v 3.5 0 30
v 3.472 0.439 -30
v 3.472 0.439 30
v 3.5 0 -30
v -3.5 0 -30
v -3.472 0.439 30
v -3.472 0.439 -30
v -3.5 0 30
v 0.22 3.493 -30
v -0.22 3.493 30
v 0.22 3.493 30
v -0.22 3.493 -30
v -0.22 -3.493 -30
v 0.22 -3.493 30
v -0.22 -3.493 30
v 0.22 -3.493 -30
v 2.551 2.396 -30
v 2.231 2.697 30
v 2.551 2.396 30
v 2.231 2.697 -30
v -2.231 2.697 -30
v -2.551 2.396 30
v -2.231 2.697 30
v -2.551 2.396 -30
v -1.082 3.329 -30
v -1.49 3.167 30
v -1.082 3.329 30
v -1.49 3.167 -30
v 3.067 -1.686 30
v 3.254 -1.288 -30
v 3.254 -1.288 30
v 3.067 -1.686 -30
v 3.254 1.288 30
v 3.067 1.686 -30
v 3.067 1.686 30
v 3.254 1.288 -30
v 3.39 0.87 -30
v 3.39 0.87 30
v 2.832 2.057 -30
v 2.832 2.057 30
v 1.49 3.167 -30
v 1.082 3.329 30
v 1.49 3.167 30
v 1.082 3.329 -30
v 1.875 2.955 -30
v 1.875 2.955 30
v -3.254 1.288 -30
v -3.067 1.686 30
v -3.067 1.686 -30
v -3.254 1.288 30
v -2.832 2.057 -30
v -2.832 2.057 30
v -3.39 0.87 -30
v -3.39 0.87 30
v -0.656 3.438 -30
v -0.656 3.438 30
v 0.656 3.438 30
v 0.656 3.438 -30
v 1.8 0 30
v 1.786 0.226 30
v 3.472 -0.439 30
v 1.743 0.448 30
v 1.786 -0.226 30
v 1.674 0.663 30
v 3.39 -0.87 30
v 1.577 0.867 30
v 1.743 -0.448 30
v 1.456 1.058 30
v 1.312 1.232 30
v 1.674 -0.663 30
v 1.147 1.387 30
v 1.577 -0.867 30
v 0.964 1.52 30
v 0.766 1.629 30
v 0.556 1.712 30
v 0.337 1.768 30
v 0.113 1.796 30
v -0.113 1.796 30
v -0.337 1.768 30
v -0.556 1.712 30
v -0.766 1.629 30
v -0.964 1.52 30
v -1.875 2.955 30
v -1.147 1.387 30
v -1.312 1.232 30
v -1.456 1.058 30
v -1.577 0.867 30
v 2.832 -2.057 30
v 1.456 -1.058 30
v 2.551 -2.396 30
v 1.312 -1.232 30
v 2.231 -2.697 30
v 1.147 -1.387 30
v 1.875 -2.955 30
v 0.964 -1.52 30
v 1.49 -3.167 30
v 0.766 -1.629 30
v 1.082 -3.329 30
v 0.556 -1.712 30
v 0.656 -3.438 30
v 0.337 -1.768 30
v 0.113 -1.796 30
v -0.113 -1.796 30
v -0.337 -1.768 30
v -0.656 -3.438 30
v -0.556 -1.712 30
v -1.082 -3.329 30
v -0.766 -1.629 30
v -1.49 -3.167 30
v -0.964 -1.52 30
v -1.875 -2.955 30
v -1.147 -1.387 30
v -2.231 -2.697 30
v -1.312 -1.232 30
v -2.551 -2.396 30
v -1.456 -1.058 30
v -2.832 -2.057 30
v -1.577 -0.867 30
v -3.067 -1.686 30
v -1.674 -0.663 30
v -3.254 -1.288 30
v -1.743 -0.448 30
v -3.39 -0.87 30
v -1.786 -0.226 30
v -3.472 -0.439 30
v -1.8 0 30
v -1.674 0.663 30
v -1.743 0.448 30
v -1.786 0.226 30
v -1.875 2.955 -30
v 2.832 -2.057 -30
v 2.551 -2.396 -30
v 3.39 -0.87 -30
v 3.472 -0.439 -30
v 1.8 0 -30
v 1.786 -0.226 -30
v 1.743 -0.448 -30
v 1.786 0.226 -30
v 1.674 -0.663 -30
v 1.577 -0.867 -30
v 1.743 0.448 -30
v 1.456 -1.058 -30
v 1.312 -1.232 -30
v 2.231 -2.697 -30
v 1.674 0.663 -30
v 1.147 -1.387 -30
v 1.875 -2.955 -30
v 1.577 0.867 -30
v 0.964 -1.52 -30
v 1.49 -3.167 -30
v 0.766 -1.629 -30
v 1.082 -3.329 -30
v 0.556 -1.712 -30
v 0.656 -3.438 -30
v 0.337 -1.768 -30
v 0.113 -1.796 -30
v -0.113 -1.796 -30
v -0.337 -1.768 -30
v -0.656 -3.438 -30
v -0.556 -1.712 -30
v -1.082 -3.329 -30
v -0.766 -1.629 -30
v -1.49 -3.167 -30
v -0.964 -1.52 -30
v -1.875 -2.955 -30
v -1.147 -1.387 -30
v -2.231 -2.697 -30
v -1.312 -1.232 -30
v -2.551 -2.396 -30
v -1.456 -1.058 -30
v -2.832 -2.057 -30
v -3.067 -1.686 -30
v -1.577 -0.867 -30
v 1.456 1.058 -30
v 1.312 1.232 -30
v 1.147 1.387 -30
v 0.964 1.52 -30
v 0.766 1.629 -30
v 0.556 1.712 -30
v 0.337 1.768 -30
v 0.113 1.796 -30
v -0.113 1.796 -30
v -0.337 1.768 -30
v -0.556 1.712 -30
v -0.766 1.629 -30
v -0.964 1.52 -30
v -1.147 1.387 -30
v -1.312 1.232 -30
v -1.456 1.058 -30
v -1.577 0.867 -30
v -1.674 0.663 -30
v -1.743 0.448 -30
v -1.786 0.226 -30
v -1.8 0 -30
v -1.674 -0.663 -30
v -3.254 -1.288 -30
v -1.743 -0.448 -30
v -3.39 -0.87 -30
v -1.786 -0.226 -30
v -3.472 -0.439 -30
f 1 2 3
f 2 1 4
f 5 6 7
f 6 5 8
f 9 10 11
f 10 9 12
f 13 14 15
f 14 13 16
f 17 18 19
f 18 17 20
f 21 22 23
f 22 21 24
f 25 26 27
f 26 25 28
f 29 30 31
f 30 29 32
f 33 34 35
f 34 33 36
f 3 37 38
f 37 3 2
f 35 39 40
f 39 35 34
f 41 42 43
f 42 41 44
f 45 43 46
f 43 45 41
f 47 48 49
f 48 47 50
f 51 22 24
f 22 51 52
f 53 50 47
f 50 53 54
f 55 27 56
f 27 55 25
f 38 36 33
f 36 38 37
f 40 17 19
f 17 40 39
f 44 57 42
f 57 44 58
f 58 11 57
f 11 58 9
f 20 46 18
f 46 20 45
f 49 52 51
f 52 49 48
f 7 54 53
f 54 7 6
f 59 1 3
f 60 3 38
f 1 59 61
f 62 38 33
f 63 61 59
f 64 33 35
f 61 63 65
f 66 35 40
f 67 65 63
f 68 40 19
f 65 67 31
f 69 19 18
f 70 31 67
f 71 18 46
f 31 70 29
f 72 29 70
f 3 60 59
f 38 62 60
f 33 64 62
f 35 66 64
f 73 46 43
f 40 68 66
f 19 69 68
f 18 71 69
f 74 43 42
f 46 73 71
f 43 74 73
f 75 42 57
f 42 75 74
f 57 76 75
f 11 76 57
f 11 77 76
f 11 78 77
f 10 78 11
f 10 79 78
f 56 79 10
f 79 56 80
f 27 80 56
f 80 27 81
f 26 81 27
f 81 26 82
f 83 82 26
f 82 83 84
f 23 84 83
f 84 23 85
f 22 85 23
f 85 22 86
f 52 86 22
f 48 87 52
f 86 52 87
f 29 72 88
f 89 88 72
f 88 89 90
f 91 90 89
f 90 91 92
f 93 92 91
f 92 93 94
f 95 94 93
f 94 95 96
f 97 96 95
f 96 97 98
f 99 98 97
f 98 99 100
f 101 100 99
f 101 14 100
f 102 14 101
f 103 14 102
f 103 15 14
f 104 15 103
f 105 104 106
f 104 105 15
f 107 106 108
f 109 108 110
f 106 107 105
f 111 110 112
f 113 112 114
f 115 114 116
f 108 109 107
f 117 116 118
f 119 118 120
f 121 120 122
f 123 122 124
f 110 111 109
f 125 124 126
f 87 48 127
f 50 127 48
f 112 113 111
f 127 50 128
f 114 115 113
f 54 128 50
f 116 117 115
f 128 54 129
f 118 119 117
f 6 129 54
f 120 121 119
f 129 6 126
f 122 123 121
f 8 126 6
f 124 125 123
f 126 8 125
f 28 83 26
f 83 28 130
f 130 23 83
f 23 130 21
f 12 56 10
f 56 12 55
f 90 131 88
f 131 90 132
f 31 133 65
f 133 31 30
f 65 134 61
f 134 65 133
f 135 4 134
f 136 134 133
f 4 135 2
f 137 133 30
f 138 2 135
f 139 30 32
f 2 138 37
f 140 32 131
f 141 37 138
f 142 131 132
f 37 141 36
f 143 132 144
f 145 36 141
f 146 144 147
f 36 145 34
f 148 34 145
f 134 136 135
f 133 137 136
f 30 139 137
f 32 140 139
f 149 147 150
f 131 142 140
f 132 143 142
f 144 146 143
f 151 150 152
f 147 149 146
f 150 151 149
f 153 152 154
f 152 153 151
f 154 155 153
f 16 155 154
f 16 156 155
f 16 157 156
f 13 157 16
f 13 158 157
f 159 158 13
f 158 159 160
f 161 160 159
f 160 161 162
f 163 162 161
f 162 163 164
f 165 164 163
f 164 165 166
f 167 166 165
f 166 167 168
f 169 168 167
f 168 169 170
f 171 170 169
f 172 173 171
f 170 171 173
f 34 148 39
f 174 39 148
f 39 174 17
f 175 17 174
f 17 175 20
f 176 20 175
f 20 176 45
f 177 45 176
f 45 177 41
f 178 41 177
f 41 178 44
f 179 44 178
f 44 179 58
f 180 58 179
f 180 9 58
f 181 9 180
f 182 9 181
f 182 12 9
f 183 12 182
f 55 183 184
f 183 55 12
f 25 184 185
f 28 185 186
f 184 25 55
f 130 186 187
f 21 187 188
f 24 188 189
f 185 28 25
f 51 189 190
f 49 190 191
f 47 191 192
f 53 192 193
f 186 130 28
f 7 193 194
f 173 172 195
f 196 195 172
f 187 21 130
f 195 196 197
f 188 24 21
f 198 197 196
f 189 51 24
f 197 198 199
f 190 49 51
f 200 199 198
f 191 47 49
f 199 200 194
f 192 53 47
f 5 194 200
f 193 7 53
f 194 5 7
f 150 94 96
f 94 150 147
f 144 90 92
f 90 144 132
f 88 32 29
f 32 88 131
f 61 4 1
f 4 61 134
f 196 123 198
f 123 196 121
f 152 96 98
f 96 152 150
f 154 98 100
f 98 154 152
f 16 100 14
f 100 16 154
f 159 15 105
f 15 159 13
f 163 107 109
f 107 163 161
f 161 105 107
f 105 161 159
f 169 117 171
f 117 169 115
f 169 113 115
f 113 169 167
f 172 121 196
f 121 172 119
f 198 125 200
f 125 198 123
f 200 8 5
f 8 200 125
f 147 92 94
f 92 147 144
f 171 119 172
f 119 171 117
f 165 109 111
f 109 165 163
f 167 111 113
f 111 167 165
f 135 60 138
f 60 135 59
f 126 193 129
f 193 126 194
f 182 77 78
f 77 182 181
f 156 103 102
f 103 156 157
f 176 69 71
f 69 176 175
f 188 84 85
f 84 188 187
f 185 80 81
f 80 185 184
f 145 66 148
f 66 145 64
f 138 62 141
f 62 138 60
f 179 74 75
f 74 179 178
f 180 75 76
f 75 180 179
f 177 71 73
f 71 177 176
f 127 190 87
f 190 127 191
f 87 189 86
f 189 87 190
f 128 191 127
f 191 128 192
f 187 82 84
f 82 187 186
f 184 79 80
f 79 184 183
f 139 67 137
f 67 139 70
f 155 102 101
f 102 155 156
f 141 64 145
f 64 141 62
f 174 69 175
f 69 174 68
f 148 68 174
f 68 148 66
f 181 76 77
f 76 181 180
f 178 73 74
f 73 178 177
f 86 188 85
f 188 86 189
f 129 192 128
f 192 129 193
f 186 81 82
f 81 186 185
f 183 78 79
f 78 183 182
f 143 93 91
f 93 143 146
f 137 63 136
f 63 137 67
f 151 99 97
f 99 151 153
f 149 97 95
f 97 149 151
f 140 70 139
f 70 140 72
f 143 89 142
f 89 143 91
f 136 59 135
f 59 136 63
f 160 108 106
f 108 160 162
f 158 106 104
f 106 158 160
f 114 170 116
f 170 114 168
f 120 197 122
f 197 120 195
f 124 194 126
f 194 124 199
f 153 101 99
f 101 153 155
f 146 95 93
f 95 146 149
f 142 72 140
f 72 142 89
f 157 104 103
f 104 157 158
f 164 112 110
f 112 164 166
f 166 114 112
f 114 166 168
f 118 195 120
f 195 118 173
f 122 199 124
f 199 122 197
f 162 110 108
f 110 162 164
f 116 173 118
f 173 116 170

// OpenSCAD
$fn = 50;


difference() {
	union() {
		translate(v = [0, 0, -30.0000000000]) {
			cylinder(h = 60, r = 3.5000000000);
		}
	}
	union() {
		translate(v = [0, 0, -100.0000000000]) {
			cylinder(h = 200, r = 1.8000000000);
		}
	}
}
